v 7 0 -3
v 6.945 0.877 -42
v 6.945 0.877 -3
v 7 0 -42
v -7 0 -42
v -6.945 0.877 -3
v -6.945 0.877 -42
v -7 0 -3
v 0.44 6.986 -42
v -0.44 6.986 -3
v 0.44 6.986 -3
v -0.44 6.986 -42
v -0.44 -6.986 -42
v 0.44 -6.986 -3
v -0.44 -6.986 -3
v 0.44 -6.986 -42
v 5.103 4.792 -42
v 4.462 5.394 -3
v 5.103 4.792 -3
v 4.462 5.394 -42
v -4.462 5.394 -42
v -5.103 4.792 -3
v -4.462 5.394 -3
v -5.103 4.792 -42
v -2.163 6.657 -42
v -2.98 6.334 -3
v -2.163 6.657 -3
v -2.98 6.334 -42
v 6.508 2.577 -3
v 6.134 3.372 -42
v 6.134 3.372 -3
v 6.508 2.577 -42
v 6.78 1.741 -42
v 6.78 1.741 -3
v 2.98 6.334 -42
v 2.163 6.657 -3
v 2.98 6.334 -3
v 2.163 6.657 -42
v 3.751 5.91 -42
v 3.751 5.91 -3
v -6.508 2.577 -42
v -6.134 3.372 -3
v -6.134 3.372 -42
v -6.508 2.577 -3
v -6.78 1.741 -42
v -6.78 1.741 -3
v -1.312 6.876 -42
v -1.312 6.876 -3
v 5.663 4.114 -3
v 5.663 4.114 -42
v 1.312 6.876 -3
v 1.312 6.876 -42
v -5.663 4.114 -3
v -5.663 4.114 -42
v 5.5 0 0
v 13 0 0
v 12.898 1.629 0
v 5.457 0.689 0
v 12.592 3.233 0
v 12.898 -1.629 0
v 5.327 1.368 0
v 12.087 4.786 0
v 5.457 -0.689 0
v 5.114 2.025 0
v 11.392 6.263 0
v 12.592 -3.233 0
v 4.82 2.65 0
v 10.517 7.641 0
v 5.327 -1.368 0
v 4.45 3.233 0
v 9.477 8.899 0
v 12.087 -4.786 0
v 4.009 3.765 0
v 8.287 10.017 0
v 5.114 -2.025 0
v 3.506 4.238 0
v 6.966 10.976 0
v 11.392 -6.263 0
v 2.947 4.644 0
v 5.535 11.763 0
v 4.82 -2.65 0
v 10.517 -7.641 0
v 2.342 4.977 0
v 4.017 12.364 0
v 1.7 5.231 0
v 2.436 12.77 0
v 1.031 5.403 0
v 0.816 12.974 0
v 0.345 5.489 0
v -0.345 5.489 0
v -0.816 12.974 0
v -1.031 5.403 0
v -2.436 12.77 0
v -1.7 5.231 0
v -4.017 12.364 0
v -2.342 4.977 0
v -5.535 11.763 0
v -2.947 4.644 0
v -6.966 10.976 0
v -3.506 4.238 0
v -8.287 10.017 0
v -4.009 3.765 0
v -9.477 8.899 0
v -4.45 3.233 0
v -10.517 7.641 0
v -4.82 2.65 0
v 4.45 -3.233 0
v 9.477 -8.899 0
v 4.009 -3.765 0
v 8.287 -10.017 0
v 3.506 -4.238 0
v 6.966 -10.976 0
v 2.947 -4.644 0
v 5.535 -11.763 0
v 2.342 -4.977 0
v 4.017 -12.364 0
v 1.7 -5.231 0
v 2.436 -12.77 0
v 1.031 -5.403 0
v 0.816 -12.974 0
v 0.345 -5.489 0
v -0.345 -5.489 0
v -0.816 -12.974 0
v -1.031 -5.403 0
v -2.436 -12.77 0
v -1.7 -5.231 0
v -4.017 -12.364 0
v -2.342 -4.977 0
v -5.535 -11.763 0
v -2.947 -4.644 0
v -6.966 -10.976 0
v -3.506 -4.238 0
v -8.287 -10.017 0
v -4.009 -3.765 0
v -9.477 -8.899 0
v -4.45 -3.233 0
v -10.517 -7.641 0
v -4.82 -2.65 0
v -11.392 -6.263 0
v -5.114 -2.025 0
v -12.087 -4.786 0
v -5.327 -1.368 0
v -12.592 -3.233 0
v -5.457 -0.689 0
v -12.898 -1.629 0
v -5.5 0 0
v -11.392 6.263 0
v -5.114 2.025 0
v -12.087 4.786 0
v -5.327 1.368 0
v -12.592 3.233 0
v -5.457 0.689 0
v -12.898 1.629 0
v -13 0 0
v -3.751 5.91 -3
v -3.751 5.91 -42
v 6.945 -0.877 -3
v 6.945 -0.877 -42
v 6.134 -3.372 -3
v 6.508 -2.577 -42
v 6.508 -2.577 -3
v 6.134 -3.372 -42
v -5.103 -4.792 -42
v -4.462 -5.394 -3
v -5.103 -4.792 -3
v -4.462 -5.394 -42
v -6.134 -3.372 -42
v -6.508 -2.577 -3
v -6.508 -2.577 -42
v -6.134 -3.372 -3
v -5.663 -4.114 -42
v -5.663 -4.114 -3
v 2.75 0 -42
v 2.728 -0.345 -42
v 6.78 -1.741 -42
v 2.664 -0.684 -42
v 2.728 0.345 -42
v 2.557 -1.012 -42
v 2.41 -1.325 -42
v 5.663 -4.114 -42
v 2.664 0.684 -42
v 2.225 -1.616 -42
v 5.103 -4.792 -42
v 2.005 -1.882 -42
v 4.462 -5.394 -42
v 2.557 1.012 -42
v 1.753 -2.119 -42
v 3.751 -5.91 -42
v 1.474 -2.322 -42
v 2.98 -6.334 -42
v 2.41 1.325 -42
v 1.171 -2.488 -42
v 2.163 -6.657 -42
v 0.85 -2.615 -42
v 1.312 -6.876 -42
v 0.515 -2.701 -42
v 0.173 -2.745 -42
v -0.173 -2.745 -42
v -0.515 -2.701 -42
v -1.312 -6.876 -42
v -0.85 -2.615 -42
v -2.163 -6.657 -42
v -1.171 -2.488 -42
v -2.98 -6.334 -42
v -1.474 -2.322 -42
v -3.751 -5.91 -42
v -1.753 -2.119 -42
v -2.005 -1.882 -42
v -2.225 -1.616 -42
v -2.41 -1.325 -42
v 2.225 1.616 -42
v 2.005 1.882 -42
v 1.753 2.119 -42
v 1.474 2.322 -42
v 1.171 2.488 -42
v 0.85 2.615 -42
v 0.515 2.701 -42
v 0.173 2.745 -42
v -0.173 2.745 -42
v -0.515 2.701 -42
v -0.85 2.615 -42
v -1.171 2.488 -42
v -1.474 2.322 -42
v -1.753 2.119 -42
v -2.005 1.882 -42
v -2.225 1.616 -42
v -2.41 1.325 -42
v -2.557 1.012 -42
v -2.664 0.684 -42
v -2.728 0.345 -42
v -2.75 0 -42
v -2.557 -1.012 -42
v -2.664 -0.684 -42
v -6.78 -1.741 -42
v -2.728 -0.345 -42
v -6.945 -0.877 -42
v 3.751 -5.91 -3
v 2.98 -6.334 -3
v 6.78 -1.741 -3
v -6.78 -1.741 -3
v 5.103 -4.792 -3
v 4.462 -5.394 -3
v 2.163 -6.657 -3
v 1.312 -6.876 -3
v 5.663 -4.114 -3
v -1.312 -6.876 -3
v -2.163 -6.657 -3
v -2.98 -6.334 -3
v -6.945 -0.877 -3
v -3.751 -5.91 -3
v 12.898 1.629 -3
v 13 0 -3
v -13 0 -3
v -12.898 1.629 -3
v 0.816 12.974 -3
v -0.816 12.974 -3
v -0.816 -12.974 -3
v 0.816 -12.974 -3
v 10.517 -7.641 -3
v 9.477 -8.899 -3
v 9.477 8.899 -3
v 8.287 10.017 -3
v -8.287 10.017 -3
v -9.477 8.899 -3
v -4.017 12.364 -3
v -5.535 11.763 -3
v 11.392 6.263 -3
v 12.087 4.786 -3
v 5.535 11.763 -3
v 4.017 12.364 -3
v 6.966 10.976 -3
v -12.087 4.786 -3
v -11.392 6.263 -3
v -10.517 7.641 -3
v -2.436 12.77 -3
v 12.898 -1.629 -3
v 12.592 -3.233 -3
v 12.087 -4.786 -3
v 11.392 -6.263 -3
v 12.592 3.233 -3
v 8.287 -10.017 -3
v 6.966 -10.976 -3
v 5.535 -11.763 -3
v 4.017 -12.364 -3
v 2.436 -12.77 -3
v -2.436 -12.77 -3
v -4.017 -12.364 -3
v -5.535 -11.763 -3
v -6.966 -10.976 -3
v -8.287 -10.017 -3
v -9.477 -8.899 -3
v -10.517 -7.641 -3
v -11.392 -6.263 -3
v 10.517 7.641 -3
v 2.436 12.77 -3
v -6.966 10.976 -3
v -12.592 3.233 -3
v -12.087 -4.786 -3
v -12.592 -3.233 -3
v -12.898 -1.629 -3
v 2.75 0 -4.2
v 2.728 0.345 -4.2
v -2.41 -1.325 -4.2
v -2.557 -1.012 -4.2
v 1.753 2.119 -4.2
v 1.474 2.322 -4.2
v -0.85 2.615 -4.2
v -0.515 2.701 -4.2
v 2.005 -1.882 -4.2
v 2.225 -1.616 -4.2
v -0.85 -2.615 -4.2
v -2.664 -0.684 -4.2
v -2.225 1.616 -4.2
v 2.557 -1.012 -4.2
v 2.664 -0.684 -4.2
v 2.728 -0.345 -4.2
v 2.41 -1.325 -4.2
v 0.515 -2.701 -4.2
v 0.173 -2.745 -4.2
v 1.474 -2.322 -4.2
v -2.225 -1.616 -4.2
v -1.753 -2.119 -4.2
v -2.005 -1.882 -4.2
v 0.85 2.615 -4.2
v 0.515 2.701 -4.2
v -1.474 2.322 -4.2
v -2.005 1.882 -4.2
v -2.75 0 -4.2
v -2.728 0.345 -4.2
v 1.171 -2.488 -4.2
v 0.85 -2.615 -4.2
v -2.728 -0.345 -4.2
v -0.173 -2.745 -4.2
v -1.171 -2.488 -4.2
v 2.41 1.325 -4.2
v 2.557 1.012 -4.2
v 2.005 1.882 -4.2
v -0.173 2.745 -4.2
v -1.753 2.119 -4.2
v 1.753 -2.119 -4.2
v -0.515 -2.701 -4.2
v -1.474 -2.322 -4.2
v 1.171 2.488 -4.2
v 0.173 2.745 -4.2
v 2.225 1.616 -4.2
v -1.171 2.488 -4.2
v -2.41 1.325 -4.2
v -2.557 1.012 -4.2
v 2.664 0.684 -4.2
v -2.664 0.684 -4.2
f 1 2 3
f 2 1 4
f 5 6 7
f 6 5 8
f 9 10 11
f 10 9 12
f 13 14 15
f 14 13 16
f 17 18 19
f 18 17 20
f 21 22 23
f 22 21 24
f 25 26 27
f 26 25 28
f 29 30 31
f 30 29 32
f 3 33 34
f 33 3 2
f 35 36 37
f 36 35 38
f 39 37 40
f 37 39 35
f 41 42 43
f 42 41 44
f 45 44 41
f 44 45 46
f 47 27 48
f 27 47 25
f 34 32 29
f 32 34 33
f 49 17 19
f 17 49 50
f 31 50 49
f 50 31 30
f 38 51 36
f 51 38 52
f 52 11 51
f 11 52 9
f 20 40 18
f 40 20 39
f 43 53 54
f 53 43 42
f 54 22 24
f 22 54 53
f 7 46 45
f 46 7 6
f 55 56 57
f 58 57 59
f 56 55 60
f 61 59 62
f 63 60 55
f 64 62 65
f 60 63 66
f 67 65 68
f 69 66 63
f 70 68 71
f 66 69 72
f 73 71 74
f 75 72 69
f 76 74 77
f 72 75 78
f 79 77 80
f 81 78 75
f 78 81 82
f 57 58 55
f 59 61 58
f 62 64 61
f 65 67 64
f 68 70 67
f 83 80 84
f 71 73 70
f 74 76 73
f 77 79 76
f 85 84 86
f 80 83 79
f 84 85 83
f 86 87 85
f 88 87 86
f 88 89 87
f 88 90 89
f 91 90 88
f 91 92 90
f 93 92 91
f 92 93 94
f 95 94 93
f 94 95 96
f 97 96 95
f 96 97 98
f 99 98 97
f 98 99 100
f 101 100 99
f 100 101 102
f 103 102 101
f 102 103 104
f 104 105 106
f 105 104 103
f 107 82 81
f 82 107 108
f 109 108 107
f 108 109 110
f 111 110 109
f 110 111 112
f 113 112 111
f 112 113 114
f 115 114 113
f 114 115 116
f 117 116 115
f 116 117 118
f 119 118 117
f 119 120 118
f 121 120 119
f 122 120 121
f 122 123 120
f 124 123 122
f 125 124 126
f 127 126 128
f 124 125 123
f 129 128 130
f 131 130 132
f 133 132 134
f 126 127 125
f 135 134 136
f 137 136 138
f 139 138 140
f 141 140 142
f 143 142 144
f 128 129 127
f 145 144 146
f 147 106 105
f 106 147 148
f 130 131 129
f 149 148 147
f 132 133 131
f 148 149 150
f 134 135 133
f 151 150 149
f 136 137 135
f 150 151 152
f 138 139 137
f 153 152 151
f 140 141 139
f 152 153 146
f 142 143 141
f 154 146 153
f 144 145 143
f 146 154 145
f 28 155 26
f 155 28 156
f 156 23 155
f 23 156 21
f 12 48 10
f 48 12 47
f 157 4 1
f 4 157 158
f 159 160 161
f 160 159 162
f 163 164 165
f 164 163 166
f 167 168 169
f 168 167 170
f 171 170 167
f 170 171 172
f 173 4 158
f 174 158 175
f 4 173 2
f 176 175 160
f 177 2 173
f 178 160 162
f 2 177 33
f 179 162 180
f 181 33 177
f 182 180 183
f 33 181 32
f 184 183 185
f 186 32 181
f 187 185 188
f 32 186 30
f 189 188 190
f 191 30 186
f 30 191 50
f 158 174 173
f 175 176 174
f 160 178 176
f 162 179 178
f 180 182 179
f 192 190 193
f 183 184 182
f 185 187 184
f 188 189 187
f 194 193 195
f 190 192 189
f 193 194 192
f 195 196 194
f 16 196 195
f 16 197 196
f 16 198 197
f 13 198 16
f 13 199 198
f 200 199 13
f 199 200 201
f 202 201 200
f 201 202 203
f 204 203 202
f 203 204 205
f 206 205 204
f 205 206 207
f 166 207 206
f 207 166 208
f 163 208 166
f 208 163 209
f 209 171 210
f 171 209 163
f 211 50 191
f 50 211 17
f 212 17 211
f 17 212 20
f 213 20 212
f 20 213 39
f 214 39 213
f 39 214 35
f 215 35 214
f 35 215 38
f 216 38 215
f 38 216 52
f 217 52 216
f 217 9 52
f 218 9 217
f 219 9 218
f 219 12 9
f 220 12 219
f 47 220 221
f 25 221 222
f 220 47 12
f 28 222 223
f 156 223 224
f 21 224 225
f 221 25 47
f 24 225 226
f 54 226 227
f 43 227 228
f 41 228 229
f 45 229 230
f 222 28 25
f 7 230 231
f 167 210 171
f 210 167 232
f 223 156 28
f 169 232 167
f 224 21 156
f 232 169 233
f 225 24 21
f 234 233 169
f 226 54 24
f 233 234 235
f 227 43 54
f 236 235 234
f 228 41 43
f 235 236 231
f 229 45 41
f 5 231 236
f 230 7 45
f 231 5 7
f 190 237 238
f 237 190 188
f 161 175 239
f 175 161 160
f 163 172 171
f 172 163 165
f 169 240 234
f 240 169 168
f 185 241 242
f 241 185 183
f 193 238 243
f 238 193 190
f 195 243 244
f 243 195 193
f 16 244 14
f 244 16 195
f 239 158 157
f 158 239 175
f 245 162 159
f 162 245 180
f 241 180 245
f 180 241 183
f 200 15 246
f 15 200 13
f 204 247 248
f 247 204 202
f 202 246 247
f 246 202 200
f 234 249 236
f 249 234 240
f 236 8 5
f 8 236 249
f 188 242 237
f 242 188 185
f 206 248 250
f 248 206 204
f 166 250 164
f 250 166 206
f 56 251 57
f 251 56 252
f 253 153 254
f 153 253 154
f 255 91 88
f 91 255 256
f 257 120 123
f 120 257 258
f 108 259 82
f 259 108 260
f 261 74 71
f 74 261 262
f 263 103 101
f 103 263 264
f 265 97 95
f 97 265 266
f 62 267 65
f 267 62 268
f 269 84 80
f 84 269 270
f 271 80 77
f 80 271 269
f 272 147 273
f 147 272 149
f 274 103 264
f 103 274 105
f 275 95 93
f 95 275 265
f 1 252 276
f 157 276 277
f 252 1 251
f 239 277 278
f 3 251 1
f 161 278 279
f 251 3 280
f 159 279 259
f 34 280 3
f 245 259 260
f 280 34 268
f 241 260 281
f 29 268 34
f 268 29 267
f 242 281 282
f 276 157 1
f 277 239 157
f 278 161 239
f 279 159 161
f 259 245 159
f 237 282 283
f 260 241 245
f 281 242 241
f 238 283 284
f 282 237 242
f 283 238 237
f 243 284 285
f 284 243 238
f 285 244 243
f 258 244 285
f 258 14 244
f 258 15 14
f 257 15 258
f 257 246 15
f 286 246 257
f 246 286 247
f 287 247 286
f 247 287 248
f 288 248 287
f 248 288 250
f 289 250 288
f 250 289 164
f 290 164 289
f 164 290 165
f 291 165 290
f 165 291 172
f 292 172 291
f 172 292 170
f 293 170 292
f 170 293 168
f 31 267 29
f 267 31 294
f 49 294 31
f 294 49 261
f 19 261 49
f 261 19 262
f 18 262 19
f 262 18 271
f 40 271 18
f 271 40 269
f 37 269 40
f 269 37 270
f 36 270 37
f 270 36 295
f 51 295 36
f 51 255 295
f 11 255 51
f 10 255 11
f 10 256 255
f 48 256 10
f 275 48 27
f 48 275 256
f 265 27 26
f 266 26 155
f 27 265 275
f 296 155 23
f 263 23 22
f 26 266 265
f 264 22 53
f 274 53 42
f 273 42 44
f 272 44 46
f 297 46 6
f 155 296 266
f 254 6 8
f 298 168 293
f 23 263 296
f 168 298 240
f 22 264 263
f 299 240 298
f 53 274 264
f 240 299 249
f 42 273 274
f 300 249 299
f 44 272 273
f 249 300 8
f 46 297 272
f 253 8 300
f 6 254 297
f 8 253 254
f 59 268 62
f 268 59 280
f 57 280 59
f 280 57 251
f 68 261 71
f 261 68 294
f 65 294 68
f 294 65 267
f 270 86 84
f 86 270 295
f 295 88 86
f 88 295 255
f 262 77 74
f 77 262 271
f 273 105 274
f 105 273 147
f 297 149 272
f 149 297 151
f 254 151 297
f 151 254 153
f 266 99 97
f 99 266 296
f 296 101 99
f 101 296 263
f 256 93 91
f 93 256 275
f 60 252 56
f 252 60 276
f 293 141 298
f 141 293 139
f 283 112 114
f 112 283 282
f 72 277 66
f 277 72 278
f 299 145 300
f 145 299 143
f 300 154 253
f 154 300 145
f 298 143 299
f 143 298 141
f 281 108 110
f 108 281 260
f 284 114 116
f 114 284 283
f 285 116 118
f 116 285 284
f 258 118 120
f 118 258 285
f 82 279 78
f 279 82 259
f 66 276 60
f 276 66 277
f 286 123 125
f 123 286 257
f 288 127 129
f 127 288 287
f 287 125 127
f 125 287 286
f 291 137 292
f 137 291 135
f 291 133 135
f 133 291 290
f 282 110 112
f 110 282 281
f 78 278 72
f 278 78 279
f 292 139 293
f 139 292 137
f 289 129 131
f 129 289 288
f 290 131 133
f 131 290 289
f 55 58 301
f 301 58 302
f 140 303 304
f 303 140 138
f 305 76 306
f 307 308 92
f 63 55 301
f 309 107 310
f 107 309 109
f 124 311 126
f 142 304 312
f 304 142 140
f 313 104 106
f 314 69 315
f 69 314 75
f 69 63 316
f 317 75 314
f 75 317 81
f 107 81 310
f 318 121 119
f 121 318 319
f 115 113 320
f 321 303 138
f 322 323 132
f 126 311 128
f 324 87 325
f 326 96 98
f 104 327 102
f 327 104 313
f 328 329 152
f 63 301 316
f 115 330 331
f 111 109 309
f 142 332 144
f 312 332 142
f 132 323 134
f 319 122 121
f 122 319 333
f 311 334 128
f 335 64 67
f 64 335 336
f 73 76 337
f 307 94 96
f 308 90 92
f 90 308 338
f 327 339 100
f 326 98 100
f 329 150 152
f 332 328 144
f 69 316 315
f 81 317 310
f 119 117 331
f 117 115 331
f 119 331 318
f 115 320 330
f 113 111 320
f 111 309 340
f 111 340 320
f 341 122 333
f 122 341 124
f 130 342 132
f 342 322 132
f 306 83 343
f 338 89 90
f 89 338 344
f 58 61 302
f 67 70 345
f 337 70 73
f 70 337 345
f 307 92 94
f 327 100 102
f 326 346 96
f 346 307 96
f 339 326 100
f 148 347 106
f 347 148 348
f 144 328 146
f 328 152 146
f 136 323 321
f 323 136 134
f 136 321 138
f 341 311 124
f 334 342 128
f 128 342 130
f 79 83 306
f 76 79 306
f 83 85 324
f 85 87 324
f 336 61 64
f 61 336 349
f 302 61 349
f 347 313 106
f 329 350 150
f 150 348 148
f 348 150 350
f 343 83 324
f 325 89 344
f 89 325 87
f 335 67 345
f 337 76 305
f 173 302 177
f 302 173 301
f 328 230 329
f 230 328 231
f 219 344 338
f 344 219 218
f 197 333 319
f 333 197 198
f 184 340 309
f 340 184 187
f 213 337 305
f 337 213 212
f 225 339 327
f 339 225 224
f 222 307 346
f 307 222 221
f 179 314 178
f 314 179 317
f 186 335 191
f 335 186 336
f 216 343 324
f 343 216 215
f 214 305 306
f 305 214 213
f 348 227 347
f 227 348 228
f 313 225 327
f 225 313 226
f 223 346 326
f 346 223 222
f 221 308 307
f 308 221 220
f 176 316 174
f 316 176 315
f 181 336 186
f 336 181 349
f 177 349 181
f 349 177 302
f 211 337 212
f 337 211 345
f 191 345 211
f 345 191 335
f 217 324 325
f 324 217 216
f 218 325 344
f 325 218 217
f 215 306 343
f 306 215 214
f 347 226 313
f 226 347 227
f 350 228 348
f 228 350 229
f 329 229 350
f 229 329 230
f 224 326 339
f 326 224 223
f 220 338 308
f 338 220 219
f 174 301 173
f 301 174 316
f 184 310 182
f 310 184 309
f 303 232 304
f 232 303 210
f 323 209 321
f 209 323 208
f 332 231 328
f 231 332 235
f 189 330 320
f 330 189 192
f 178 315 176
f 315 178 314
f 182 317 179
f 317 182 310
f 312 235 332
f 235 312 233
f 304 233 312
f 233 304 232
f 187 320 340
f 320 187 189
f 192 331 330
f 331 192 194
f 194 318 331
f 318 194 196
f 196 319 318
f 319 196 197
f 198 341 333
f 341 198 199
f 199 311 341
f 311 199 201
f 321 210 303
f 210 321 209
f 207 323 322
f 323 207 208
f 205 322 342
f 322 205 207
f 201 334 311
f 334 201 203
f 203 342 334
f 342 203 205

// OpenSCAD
$fn = 50;


difference() {
	union() {
		translate(v = [0, 0, -42.0000000000]) {
			cylinder(h = 42, r = 7.0000000000);
		}
		translate(v = [0, 0, -3.0000000000]) {
			cylinder(h = 3, r = 13.0000000000);
		}
	}
	union() {
		translate(v = [0, 0, 0]) {
			rotate(a = [0, 0, 0]) {
				difference() {
					union() {
						#translate(v = [0, 0, -42.0000000000]) {
							cylinder(h = 42, r = 2.2500000000);
						}
						#translate(v = [0, 0, -4.2000000000]) {
							cylinder(h = 4.2000000000, r = 7.0000000000, r1 = 2.7500000000, r2 = 5.5000000000);
						}
						#translate(v = [0, 0, -42.0000000000]) {
							cylinder(h = 42, r = 2.7500000000);
						}
						#translate(v = [0, 0, -42.0000000000]) {
							cylinder(h = 42, r = 2.2500000000);
						}
					}
					union();
				}
			}
		}
	}
}
